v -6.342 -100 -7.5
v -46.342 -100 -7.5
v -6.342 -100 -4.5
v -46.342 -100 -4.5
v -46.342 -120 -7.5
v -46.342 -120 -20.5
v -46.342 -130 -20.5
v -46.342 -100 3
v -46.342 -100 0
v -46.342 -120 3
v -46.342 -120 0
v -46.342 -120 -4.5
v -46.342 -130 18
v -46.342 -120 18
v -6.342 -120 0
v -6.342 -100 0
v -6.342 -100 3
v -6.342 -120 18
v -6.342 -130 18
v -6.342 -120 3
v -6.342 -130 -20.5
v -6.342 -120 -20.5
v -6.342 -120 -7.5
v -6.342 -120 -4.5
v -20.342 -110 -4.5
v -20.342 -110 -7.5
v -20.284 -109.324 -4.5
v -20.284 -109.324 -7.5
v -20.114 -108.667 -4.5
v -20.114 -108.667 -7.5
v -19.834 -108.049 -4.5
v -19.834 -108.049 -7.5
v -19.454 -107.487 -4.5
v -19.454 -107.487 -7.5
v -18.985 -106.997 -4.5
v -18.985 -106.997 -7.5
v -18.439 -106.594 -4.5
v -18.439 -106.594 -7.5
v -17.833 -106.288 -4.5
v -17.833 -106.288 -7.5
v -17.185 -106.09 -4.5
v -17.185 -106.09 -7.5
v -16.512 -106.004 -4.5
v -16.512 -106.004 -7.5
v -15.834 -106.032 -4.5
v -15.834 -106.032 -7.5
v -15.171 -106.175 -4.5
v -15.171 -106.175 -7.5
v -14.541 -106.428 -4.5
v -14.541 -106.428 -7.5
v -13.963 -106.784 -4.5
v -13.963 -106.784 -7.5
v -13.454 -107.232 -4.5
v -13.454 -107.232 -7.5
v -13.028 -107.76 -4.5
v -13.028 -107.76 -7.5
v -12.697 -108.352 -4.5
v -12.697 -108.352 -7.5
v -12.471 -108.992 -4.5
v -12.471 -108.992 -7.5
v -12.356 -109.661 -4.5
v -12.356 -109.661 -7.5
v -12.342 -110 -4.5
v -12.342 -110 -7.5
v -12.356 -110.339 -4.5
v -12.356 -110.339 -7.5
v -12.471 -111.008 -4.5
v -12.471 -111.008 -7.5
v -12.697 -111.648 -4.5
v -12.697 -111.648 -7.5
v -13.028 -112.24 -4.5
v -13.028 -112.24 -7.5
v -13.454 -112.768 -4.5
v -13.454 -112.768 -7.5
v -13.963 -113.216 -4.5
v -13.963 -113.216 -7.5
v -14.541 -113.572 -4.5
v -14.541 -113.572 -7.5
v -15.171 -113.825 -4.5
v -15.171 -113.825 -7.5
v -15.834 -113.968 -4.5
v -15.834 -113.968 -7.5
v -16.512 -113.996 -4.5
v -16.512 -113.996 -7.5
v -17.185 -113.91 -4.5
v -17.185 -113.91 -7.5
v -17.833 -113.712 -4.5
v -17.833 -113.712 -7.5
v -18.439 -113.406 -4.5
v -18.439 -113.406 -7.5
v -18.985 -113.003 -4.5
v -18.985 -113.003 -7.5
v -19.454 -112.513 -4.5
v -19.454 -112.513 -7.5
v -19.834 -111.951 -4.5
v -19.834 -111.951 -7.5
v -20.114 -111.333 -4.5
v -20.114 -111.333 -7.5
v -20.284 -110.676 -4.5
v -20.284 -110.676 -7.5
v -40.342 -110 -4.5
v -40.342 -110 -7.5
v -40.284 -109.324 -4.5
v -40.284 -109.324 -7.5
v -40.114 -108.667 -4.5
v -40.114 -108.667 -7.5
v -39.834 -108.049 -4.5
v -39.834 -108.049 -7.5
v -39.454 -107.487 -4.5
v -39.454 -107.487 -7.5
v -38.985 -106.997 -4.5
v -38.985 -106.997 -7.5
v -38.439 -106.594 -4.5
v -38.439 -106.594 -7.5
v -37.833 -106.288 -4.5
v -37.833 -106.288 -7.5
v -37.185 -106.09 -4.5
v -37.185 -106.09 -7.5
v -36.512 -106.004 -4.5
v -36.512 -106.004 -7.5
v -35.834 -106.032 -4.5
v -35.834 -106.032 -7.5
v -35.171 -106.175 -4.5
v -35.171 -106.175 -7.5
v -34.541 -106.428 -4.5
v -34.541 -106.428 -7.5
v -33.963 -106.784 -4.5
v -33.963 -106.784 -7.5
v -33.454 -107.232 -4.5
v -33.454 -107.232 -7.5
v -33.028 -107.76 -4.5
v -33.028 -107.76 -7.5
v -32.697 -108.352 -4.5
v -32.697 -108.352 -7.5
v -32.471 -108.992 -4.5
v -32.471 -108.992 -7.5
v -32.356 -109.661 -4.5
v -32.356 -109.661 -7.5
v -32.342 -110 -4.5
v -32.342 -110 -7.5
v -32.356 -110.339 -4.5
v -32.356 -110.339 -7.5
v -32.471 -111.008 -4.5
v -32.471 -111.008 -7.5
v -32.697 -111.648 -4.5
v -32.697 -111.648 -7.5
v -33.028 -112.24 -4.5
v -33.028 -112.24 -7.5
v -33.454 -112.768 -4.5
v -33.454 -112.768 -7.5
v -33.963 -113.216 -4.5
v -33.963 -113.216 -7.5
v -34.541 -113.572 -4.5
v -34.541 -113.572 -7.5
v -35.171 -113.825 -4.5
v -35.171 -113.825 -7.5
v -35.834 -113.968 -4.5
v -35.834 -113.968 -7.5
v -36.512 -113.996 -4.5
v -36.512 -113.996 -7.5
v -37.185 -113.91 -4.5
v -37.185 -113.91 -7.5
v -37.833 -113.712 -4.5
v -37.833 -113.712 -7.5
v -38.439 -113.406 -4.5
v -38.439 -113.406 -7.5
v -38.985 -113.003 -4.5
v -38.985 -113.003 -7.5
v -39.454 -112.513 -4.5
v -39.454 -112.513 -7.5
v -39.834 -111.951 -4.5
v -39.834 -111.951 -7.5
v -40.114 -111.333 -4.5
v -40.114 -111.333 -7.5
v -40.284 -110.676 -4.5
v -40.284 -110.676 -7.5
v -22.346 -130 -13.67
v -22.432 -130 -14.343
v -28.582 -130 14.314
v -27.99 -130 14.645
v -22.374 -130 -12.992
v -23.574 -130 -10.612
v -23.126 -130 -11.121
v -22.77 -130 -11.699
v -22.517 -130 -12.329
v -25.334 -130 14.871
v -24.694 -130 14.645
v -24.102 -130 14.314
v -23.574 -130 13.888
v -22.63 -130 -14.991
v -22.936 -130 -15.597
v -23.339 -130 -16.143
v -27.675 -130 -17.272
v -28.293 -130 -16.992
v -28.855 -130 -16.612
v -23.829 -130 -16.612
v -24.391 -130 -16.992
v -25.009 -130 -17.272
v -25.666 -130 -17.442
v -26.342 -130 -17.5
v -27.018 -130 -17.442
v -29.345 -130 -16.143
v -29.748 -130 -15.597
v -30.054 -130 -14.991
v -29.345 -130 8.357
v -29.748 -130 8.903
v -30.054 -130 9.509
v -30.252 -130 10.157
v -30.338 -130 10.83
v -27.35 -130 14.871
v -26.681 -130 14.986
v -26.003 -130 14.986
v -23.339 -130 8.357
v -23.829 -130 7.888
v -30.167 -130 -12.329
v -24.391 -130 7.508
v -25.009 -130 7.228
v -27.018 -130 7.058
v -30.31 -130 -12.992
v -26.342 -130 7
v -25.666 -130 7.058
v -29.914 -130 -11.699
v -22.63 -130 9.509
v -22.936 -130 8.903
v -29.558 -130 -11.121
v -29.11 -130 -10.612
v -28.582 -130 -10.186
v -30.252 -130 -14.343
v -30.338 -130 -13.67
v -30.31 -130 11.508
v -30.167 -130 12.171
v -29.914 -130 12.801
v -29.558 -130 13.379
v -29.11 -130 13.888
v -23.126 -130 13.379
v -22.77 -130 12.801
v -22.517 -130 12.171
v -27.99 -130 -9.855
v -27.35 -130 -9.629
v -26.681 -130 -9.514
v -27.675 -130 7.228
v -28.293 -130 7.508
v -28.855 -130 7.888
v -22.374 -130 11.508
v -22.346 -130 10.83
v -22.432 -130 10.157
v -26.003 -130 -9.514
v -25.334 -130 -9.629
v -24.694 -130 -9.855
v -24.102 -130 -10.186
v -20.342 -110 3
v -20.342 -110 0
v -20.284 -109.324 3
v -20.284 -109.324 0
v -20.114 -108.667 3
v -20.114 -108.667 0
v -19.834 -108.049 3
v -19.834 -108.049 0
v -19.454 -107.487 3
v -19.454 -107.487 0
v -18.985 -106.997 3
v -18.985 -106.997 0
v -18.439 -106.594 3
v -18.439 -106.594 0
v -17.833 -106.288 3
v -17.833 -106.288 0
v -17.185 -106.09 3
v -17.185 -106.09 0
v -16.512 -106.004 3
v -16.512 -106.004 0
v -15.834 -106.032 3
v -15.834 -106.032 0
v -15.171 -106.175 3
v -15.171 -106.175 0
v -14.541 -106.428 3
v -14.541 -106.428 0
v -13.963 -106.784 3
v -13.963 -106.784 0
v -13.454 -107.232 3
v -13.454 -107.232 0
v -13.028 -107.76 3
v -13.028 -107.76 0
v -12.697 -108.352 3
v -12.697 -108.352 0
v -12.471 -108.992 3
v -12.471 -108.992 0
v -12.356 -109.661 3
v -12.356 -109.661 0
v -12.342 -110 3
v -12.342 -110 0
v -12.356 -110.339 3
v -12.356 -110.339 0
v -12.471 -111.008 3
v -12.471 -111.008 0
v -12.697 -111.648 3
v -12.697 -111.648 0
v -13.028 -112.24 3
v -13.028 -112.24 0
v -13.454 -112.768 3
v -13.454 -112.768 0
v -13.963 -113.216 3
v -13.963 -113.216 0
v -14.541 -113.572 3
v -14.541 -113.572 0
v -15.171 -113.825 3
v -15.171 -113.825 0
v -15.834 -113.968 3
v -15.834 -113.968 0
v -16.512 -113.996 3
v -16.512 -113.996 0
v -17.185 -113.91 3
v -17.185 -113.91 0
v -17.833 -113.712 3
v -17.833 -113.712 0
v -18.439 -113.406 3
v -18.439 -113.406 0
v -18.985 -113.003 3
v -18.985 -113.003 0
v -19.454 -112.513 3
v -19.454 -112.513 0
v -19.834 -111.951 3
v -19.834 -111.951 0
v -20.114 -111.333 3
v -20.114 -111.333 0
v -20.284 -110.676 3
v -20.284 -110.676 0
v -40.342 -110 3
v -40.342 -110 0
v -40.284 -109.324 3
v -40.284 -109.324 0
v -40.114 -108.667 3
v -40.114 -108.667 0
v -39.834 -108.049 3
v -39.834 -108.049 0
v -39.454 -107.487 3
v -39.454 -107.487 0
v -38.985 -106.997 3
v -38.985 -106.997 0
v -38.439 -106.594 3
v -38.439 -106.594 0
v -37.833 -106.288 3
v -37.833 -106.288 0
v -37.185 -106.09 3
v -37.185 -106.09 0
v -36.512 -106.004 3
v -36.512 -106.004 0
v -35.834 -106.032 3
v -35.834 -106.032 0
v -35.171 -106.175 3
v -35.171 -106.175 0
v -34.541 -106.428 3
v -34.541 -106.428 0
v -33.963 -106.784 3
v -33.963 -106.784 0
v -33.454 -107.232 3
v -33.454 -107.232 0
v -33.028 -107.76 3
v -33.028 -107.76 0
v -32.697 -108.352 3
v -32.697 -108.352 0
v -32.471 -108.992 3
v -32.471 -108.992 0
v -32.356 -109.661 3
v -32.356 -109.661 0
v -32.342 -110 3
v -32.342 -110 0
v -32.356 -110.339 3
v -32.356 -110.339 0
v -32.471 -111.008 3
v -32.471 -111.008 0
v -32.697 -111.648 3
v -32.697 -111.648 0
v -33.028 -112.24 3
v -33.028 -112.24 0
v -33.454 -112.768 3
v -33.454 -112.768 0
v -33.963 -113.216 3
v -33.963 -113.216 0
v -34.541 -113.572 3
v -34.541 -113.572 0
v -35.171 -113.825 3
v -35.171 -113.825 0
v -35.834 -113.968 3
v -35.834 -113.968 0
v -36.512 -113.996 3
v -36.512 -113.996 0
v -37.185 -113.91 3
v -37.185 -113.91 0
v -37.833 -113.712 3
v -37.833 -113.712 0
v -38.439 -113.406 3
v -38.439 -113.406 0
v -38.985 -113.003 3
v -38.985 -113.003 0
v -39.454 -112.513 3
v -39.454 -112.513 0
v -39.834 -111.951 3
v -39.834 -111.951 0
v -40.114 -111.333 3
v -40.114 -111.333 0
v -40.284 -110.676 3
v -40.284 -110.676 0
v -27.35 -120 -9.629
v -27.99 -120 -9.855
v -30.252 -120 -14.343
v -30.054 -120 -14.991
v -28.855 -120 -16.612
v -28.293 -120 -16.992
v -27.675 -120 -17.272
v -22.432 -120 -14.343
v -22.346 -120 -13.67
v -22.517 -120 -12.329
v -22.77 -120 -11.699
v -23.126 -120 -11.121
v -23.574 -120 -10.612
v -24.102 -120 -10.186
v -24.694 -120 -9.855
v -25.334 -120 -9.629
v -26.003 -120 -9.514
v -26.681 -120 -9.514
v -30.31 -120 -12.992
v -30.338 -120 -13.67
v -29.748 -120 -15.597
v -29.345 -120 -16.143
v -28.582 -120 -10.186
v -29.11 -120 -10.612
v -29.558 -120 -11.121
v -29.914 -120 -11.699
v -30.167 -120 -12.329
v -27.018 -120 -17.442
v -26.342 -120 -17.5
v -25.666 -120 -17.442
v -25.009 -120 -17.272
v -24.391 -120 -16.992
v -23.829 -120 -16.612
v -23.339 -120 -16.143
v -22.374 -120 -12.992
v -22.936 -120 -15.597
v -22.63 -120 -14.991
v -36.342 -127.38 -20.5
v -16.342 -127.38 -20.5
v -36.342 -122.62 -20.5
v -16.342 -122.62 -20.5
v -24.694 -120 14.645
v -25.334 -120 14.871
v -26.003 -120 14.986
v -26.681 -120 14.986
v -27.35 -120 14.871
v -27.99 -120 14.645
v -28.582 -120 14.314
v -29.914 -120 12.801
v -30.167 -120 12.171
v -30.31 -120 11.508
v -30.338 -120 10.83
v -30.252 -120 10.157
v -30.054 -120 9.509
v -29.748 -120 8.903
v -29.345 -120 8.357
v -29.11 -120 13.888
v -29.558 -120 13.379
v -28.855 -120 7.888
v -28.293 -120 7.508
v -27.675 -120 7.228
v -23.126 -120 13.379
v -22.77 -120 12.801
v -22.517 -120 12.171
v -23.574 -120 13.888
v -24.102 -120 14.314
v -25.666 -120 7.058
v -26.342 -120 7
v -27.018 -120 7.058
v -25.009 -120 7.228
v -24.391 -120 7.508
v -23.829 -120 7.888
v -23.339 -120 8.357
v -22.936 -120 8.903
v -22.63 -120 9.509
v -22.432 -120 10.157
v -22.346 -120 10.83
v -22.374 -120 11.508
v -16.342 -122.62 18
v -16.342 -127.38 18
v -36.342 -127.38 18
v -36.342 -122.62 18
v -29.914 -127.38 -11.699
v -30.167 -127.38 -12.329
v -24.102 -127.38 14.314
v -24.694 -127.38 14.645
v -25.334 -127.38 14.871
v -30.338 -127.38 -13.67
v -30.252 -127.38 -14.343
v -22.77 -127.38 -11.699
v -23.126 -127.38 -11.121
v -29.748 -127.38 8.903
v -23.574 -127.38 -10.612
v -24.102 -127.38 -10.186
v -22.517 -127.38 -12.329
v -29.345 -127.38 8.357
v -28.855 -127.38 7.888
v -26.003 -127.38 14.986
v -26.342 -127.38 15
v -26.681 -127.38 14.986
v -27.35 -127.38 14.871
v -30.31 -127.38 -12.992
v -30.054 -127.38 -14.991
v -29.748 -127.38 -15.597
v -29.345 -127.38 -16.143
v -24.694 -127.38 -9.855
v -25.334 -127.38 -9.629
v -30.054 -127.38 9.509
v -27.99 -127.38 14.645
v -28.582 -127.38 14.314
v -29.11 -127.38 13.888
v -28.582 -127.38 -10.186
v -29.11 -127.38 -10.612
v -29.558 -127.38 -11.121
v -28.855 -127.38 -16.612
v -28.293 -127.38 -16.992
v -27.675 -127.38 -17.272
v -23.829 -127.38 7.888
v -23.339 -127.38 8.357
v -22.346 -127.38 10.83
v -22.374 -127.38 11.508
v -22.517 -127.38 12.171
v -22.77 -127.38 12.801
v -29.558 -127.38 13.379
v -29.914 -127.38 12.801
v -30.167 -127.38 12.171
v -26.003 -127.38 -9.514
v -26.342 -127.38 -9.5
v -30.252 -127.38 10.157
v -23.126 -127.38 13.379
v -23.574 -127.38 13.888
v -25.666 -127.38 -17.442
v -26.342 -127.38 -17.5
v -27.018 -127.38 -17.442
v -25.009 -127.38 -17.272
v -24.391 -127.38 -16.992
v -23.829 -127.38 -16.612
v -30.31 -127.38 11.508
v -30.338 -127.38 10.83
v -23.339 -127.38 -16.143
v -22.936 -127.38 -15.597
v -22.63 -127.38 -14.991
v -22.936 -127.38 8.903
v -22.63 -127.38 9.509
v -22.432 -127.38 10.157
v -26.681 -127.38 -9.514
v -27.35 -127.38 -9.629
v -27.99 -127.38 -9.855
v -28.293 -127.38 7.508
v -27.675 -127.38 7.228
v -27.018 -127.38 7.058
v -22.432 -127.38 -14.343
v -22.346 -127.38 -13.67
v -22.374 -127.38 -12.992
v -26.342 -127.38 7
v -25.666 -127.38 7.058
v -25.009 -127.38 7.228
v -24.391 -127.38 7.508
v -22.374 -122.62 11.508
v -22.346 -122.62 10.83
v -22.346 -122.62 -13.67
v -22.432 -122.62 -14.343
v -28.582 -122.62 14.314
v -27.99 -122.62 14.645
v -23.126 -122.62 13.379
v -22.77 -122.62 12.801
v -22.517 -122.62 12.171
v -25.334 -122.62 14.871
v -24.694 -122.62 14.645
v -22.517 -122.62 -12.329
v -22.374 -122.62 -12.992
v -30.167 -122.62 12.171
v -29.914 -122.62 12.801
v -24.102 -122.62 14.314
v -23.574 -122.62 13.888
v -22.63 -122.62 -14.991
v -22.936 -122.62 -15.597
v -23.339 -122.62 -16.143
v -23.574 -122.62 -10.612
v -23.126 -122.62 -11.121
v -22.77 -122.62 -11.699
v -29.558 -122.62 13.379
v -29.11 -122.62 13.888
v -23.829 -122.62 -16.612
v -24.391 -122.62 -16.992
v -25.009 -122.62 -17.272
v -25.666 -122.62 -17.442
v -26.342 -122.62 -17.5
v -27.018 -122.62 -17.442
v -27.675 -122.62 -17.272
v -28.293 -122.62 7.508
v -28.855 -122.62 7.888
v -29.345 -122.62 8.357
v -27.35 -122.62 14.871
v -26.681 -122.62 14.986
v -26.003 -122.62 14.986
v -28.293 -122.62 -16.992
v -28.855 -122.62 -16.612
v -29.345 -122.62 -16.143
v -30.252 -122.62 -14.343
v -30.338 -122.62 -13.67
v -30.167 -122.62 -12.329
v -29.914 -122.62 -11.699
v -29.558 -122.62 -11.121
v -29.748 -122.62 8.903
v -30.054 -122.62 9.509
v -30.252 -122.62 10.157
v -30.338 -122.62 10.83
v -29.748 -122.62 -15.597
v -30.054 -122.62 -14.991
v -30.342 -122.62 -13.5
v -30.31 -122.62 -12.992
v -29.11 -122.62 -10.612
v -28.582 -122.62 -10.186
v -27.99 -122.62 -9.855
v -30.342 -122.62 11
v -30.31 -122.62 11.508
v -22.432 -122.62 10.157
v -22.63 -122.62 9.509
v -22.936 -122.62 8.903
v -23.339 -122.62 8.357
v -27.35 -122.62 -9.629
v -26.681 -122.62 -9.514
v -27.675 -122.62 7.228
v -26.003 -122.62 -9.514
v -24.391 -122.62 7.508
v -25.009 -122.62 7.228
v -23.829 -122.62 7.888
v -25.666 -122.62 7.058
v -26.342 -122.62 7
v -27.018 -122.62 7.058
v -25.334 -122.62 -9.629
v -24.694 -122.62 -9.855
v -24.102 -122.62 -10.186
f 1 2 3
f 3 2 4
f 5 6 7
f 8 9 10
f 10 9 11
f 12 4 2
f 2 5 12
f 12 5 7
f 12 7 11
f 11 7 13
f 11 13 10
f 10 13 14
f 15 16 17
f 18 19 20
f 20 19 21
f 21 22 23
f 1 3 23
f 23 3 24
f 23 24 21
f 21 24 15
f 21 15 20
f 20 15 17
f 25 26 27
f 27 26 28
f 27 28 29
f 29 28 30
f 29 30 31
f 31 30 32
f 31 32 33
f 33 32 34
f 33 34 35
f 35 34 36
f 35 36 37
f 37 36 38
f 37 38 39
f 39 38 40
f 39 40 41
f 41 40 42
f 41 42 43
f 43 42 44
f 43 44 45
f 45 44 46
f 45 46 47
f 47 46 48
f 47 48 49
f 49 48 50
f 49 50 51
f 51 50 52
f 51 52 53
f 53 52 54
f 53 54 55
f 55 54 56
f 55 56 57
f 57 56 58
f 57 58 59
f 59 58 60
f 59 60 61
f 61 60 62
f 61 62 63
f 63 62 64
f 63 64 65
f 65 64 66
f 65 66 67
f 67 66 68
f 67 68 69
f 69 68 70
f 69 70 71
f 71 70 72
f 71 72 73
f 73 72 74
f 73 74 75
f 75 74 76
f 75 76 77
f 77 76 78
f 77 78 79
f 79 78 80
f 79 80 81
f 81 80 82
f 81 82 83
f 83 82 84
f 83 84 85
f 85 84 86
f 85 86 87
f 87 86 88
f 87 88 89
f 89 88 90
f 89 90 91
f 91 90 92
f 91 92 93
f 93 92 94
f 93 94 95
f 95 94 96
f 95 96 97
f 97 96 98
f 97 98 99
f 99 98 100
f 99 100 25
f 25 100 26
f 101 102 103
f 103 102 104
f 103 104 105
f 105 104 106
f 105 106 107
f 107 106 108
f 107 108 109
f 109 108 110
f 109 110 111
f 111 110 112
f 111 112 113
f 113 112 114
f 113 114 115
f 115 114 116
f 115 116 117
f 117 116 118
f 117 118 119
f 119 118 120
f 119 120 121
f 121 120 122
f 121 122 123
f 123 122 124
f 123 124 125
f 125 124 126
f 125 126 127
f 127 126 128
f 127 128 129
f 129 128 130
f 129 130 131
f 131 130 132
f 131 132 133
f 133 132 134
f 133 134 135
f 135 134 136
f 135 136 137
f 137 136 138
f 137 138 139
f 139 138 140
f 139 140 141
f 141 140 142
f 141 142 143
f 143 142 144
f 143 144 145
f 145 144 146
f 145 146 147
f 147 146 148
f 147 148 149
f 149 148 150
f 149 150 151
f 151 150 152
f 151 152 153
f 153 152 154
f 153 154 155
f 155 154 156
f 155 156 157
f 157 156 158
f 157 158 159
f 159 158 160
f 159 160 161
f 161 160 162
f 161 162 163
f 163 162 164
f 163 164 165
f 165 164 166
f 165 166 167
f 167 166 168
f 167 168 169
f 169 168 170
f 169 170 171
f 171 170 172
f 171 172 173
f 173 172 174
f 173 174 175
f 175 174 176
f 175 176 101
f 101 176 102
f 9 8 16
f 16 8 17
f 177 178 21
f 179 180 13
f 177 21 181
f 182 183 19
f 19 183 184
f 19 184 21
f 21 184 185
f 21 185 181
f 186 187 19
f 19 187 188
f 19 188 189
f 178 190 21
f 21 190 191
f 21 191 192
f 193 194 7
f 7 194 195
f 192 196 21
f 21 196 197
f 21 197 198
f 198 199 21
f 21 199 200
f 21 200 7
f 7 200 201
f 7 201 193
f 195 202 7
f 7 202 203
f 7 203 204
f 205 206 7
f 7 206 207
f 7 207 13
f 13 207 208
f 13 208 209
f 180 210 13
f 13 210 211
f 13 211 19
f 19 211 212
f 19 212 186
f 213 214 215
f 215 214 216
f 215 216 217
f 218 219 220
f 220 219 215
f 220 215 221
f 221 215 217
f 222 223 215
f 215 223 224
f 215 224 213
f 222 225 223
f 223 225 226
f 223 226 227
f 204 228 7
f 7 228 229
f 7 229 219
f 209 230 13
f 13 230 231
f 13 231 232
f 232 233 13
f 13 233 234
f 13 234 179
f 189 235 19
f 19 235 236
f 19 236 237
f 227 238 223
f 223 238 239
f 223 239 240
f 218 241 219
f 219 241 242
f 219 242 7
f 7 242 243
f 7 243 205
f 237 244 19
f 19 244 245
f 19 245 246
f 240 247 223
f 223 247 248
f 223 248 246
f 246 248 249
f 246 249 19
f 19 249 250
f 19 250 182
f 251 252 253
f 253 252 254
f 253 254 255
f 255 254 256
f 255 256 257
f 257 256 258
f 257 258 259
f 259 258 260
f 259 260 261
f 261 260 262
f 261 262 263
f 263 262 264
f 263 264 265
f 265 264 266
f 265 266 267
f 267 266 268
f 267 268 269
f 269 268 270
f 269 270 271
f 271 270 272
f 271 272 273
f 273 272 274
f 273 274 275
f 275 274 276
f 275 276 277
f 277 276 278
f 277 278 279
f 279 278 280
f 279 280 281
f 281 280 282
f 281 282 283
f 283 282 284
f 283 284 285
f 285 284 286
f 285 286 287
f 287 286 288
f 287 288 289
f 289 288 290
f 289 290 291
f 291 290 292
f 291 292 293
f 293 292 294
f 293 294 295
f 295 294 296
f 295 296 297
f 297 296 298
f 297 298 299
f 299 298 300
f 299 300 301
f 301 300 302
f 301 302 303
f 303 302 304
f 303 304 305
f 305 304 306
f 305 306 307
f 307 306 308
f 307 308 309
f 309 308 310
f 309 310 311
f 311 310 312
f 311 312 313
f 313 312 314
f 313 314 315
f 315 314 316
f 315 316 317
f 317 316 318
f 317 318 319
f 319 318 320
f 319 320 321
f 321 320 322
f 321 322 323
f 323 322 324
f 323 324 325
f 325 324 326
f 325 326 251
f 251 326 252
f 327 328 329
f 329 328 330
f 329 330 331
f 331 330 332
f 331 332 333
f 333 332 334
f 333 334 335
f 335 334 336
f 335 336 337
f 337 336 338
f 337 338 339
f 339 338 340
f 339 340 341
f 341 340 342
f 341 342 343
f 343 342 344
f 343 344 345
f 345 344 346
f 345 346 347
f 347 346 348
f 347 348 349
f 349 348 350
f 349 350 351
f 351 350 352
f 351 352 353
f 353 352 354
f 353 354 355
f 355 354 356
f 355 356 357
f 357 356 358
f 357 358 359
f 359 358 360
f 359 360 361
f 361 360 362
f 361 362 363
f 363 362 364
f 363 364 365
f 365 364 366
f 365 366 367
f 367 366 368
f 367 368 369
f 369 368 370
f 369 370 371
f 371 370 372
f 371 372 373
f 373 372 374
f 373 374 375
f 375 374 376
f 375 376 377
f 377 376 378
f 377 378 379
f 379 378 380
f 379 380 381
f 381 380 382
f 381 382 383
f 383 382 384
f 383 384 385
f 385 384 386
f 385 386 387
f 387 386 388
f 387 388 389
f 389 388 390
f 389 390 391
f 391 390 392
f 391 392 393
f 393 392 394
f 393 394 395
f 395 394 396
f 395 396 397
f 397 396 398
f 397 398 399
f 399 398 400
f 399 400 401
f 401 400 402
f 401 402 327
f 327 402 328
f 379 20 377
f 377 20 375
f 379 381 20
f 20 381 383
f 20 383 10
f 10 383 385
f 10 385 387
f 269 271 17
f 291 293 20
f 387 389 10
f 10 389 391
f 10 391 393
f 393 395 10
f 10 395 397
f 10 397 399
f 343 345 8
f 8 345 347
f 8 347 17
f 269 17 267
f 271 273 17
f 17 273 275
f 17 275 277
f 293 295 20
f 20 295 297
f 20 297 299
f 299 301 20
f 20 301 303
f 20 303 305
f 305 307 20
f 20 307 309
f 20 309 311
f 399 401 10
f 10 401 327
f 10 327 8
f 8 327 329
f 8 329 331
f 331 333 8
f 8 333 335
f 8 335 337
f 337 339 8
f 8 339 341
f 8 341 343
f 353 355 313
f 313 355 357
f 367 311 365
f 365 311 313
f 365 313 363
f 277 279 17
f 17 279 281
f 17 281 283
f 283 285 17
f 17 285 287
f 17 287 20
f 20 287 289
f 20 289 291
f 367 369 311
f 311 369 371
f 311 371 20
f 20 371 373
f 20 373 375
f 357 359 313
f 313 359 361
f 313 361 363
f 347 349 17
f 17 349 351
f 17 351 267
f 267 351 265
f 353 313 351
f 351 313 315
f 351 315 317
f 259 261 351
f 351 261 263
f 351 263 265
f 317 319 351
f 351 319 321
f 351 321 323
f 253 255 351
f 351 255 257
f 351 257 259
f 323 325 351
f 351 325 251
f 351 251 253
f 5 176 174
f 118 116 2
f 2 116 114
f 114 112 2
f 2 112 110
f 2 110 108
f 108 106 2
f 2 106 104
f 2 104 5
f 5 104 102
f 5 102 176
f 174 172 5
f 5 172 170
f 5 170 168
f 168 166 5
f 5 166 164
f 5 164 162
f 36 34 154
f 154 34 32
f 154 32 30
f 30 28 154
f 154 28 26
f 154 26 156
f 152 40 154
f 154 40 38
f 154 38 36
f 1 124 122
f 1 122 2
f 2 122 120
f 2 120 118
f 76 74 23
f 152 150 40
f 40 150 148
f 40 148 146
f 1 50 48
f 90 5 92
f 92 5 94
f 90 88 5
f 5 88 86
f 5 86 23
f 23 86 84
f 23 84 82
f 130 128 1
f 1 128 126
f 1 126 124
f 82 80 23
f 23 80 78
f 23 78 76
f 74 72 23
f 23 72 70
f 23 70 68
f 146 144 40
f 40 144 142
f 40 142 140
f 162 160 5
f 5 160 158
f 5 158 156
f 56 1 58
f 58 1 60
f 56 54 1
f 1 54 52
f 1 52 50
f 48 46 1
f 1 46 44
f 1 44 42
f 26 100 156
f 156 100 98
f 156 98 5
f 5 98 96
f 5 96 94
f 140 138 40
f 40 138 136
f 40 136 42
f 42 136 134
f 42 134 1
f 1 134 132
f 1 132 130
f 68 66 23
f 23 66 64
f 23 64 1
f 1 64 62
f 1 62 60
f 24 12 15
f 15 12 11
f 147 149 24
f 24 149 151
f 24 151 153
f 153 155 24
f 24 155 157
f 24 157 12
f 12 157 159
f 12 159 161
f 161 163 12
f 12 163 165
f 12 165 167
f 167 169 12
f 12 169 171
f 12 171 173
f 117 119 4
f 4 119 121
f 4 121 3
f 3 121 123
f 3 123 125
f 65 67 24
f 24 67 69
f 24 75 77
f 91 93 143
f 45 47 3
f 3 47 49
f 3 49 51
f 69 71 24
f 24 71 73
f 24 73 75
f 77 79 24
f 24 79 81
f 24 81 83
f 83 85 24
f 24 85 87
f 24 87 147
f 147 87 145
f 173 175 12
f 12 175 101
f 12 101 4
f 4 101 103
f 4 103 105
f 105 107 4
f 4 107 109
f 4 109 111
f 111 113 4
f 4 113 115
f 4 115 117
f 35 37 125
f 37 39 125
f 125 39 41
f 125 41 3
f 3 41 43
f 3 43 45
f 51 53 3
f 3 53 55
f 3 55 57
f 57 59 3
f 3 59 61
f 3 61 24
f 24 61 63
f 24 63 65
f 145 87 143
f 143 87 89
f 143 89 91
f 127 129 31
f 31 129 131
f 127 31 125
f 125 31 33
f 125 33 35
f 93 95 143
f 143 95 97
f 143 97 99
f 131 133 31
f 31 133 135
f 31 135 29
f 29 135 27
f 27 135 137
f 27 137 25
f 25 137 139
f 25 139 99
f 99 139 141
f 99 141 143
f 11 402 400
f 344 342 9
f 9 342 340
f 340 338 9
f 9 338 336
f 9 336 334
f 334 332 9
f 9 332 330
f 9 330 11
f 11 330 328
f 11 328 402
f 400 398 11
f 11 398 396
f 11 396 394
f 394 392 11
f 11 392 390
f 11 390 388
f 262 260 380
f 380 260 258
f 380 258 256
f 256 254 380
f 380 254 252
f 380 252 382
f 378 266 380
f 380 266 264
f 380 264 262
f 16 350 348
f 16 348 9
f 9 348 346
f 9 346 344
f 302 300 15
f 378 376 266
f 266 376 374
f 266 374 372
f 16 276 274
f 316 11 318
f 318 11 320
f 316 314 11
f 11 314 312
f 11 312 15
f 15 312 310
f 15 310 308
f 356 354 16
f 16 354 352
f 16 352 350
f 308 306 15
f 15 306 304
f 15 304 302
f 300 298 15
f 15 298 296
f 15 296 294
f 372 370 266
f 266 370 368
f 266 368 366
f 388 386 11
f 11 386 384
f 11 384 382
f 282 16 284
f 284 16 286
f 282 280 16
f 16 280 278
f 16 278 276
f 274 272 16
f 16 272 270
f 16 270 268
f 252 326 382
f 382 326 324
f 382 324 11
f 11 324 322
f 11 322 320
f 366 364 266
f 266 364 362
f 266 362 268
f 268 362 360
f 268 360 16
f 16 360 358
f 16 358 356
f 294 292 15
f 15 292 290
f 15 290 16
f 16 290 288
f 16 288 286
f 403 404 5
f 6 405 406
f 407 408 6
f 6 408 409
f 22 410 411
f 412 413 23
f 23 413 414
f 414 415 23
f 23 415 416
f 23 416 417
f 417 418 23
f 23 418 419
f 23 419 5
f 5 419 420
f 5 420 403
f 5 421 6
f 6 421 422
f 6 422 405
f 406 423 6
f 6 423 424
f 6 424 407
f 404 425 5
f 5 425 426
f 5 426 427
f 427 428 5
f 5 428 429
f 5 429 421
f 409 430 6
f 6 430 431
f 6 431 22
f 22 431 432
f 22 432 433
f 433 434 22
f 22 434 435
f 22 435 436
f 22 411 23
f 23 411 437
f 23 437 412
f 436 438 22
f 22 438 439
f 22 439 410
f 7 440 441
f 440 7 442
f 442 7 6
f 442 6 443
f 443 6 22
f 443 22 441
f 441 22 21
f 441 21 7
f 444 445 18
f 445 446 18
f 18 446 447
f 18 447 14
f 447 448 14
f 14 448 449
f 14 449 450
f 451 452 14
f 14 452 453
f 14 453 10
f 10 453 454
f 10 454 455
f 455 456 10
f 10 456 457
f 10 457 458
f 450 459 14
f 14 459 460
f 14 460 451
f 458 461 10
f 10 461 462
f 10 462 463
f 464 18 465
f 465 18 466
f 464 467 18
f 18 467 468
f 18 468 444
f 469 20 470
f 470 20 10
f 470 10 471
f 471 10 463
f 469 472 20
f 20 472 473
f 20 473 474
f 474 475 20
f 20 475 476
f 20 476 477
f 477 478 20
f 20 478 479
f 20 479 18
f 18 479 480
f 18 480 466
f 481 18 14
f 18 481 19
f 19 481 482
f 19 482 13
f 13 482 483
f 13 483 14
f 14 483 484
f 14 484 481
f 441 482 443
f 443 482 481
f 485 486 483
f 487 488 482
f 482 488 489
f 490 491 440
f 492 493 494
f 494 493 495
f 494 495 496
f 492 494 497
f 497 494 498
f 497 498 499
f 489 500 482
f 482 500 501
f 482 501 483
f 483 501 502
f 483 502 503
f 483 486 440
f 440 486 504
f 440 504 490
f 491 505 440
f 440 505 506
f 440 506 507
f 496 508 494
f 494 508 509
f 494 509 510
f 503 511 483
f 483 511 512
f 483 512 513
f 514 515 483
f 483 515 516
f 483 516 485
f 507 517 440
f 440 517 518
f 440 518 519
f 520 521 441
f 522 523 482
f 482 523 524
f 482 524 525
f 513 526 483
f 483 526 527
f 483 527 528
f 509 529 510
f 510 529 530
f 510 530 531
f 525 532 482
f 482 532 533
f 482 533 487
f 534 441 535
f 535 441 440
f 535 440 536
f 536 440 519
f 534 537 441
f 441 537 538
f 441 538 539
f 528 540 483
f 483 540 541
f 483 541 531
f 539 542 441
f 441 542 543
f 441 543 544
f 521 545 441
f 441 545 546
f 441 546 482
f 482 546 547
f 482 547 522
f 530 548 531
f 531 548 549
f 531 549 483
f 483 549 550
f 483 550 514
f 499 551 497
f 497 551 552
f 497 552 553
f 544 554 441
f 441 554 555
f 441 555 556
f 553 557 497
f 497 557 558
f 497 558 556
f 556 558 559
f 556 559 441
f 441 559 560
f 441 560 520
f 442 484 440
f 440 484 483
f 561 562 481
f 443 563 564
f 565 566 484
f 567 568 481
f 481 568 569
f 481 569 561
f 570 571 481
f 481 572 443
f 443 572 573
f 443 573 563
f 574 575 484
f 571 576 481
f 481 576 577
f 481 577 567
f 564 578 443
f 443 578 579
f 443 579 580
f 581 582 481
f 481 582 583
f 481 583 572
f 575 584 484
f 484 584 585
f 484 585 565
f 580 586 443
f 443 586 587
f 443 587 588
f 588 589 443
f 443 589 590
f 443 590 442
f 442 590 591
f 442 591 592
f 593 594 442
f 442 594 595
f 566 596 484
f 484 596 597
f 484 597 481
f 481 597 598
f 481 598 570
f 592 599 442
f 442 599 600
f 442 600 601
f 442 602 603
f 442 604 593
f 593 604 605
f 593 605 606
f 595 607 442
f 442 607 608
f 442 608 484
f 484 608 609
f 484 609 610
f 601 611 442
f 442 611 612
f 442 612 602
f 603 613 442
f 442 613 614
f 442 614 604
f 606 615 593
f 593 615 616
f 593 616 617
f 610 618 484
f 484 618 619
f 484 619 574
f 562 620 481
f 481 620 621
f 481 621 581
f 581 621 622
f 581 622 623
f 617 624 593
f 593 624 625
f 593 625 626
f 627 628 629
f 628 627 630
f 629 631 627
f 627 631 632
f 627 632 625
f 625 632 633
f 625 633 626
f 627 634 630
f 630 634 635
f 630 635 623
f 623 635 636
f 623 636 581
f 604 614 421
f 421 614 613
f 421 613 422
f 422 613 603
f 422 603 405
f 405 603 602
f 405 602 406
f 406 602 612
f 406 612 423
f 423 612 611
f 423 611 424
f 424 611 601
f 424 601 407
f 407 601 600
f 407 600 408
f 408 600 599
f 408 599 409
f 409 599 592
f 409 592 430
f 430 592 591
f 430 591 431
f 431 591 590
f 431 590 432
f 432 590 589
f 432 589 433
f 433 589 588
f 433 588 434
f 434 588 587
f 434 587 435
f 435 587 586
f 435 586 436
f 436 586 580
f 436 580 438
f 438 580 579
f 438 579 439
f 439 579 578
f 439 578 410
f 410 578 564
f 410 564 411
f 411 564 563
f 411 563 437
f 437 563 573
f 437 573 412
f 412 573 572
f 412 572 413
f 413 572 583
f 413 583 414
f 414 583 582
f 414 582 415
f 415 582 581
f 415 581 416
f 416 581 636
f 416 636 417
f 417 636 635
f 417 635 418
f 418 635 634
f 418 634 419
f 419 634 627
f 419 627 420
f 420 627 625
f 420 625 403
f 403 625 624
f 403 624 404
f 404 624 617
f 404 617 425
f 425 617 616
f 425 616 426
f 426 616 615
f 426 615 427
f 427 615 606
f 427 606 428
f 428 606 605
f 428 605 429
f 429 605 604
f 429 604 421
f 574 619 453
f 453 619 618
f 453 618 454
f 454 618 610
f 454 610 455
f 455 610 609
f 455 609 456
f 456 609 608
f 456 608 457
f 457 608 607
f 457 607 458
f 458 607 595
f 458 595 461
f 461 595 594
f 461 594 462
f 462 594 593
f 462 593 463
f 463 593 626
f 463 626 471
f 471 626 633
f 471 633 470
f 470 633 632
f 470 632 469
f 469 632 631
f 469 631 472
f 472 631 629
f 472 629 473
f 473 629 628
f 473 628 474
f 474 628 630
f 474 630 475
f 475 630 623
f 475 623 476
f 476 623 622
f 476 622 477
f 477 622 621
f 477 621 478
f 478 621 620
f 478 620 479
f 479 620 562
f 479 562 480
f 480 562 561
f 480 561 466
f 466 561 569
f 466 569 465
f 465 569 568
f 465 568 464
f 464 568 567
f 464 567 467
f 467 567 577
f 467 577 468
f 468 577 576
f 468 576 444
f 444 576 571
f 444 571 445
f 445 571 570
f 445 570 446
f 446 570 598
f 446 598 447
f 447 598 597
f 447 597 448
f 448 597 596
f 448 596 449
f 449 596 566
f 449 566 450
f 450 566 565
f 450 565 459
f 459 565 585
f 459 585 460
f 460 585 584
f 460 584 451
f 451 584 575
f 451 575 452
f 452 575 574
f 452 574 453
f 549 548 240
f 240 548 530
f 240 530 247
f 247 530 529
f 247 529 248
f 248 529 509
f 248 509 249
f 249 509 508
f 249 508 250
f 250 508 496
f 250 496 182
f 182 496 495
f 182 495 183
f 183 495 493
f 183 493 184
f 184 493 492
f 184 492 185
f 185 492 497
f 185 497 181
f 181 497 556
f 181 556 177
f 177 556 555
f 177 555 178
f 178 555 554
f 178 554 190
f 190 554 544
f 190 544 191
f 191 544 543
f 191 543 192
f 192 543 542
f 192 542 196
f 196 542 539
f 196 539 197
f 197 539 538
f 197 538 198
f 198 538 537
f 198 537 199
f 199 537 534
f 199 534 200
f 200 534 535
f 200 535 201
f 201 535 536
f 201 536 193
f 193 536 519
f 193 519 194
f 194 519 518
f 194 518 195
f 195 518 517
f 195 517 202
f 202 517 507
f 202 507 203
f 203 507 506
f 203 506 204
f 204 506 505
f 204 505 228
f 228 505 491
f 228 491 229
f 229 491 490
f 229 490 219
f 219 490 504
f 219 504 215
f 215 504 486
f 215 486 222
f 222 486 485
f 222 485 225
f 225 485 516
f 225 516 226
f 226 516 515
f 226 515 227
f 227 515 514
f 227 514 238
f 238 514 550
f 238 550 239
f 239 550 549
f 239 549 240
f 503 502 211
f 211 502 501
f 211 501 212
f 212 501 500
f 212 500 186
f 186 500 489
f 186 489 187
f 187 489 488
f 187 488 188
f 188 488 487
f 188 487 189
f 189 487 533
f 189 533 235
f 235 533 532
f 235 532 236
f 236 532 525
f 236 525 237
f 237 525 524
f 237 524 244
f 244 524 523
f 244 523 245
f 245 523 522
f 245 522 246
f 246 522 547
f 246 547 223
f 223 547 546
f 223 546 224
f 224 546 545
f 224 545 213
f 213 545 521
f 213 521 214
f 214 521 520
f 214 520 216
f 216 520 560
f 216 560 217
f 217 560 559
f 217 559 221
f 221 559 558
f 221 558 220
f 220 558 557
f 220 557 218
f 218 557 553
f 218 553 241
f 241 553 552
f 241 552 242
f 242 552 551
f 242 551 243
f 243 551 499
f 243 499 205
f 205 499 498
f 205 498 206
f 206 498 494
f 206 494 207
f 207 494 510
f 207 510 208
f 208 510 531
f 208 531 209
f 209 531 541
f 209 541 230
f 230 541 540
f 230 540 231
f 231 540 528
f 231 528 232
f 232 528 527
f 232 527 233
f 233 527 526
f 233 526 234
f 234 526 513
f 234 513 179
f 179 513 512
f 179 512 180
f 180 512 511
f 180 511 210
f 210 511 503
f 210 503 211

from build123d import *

# Parameters (mm, degrees)
SKETCH1_W                = 40
SKETCH1_H                = 30
SKETCH1_R                = 4
SKETCH1_W_2              = 20
SKETCH1_H_2              = 4.76
BOSS_EXTRUDE1_DEPTH      = 3
BOSS_EXTRUDE3_START      = -7.5
SKETCH1_5_W              = 40
SKETCH1_5_H              = 30
SKETCH1_5_R              = 4
SKETCH1_5_W_2            = 20
SKETCH1_5_H_2            = 4.76
BOSS_EXTRUDE3_DEPTH      = 7.5
CUT_EXTRUDE1_START       = -4.5
SKETCH1_6_W              = 40
SKETCH1_6_H              = 20
SKETCH1_6_R              = 4
CUT_EXTRUDE1_DEPTH       = 4.5
BOSS_EXTRUDE4_DEPTH      = 18
BOSS_EXTRUDE4_DEPTH_BACK = 20.5
SKETCH1_7_W              = 40
SKETCH1_7_H              = 10
SKETCH1_7_W_2            = 20
SKETCH1_7_H_2            = 4.76
SKETCH5_R                = 4
CUT_EXTRUDE2_DEPTH       = 10


with BuildPart() as part:
    # Sketch1 → Boss-Extrude1 (new body)
    with BuildSketch(Plane.XY):
        with Locations((-26.342010442, -115)):
            Rectangle(SKETCH1_W, SKETCH1_H)
        with Locations((-36.342010442, -110)):
            Circle(SKETCH1_R, mode=Mode.SUBTRACT)
        with Locations((-16.342010442, -110)):
            Circle(SKETCH1_R, mode=Mode.SUBTRACT)
        with Locations((-26.342010442, -125)):
            Rectangle(SKETCH1_W_2, SKETCH1_H_2, mode=Mode.SUBTRACT)
    extrude(amount=BOSS_EXTRUDE1_DEPTH)

    # Sketch1<5> → Boss-Extrude3 (add)
    with BuildSketch(Plane.XY.offset(BOSS_EXTRUDE3_START)):
        with Locations((-26.342010442, -115)):
            Rectangle(SKETCH1_5_W, SKETCH1_5_H)
        with Locations((-36.342010442, -110)):
            Circle(SKETCH1_5_R, mode=Mode.SUBTRACT)
        with Locations((-16.342010442, -110)):
            Circle(SKETCH1_5_R, mode=Mode.SUBTRACT)
        with Locations((-26.342010442, -125)):
            Rectangle(SKETCH1_5_W_2, SKETCH1_5_H_2, mode=Mode.SUBTRACT)
    extrude(amount=BOSS_EXTRUDE3_DEPTH)

    # Sketch1<6> → Cut-Extrude1 (cut)
    with BuildSketch(Plane.XY.offset(CUT_EXTRUDE1_START)):
        with Locations((-26.342010442, -110)):
            Rectangle(SKETCH1_6_W, SKETCH1_6_H)
        with Locations((-36.342010442, -110)):
            Circle(SKETCH1_6_R, mode=Mode.SUBTRACT)
        with Locations((-16.342010442, -110)):
            Circle(SKETCH1_6_R, mode=Mode.SUBTRACT)
    extrude(amount=CUT_EXTRUDE1_DEPTH, mode=Mode.SUBTRACT)

    # Sketch1<7> → Boss-Extrude4 (add, two sides: drawn at the far end of the back side and taken through both)
    with BuildSketch(Plane.XY.offset(-BOSS_EXTRUDE4_DEPTH_BACK)):
        with Locations((-26.342010442, -125)):
            Rectangle(SKETCH1_7_W, SKETCH1_7_H)
        with Locations((-26.342010442, -125)):
            Rectangle(SKETCH1_7_W_2, SKETCH1_7_H_2, mode=Mode.SUBTRACT)
    extrude(amount=BOSS_EXTRUDE4_DEPTH + BOSS_EXTRUDE4_DEPTH_BACK)

    # Sketch5 → Cut-Extrude2 (cut)
    with BuildSketch(Plane.XZ.offset(130)):
        with Locations((-26.342010442, 11)):
            Circle(SKETCH5_R)
        with Locations((-26.342010442, -13.5)):
            Circle(SKETCH5_R)
    extrude(amount=-CUT_EXTRUDE2_DEPTH, mode=Mode.SUBTRACT)


solid = part.part
